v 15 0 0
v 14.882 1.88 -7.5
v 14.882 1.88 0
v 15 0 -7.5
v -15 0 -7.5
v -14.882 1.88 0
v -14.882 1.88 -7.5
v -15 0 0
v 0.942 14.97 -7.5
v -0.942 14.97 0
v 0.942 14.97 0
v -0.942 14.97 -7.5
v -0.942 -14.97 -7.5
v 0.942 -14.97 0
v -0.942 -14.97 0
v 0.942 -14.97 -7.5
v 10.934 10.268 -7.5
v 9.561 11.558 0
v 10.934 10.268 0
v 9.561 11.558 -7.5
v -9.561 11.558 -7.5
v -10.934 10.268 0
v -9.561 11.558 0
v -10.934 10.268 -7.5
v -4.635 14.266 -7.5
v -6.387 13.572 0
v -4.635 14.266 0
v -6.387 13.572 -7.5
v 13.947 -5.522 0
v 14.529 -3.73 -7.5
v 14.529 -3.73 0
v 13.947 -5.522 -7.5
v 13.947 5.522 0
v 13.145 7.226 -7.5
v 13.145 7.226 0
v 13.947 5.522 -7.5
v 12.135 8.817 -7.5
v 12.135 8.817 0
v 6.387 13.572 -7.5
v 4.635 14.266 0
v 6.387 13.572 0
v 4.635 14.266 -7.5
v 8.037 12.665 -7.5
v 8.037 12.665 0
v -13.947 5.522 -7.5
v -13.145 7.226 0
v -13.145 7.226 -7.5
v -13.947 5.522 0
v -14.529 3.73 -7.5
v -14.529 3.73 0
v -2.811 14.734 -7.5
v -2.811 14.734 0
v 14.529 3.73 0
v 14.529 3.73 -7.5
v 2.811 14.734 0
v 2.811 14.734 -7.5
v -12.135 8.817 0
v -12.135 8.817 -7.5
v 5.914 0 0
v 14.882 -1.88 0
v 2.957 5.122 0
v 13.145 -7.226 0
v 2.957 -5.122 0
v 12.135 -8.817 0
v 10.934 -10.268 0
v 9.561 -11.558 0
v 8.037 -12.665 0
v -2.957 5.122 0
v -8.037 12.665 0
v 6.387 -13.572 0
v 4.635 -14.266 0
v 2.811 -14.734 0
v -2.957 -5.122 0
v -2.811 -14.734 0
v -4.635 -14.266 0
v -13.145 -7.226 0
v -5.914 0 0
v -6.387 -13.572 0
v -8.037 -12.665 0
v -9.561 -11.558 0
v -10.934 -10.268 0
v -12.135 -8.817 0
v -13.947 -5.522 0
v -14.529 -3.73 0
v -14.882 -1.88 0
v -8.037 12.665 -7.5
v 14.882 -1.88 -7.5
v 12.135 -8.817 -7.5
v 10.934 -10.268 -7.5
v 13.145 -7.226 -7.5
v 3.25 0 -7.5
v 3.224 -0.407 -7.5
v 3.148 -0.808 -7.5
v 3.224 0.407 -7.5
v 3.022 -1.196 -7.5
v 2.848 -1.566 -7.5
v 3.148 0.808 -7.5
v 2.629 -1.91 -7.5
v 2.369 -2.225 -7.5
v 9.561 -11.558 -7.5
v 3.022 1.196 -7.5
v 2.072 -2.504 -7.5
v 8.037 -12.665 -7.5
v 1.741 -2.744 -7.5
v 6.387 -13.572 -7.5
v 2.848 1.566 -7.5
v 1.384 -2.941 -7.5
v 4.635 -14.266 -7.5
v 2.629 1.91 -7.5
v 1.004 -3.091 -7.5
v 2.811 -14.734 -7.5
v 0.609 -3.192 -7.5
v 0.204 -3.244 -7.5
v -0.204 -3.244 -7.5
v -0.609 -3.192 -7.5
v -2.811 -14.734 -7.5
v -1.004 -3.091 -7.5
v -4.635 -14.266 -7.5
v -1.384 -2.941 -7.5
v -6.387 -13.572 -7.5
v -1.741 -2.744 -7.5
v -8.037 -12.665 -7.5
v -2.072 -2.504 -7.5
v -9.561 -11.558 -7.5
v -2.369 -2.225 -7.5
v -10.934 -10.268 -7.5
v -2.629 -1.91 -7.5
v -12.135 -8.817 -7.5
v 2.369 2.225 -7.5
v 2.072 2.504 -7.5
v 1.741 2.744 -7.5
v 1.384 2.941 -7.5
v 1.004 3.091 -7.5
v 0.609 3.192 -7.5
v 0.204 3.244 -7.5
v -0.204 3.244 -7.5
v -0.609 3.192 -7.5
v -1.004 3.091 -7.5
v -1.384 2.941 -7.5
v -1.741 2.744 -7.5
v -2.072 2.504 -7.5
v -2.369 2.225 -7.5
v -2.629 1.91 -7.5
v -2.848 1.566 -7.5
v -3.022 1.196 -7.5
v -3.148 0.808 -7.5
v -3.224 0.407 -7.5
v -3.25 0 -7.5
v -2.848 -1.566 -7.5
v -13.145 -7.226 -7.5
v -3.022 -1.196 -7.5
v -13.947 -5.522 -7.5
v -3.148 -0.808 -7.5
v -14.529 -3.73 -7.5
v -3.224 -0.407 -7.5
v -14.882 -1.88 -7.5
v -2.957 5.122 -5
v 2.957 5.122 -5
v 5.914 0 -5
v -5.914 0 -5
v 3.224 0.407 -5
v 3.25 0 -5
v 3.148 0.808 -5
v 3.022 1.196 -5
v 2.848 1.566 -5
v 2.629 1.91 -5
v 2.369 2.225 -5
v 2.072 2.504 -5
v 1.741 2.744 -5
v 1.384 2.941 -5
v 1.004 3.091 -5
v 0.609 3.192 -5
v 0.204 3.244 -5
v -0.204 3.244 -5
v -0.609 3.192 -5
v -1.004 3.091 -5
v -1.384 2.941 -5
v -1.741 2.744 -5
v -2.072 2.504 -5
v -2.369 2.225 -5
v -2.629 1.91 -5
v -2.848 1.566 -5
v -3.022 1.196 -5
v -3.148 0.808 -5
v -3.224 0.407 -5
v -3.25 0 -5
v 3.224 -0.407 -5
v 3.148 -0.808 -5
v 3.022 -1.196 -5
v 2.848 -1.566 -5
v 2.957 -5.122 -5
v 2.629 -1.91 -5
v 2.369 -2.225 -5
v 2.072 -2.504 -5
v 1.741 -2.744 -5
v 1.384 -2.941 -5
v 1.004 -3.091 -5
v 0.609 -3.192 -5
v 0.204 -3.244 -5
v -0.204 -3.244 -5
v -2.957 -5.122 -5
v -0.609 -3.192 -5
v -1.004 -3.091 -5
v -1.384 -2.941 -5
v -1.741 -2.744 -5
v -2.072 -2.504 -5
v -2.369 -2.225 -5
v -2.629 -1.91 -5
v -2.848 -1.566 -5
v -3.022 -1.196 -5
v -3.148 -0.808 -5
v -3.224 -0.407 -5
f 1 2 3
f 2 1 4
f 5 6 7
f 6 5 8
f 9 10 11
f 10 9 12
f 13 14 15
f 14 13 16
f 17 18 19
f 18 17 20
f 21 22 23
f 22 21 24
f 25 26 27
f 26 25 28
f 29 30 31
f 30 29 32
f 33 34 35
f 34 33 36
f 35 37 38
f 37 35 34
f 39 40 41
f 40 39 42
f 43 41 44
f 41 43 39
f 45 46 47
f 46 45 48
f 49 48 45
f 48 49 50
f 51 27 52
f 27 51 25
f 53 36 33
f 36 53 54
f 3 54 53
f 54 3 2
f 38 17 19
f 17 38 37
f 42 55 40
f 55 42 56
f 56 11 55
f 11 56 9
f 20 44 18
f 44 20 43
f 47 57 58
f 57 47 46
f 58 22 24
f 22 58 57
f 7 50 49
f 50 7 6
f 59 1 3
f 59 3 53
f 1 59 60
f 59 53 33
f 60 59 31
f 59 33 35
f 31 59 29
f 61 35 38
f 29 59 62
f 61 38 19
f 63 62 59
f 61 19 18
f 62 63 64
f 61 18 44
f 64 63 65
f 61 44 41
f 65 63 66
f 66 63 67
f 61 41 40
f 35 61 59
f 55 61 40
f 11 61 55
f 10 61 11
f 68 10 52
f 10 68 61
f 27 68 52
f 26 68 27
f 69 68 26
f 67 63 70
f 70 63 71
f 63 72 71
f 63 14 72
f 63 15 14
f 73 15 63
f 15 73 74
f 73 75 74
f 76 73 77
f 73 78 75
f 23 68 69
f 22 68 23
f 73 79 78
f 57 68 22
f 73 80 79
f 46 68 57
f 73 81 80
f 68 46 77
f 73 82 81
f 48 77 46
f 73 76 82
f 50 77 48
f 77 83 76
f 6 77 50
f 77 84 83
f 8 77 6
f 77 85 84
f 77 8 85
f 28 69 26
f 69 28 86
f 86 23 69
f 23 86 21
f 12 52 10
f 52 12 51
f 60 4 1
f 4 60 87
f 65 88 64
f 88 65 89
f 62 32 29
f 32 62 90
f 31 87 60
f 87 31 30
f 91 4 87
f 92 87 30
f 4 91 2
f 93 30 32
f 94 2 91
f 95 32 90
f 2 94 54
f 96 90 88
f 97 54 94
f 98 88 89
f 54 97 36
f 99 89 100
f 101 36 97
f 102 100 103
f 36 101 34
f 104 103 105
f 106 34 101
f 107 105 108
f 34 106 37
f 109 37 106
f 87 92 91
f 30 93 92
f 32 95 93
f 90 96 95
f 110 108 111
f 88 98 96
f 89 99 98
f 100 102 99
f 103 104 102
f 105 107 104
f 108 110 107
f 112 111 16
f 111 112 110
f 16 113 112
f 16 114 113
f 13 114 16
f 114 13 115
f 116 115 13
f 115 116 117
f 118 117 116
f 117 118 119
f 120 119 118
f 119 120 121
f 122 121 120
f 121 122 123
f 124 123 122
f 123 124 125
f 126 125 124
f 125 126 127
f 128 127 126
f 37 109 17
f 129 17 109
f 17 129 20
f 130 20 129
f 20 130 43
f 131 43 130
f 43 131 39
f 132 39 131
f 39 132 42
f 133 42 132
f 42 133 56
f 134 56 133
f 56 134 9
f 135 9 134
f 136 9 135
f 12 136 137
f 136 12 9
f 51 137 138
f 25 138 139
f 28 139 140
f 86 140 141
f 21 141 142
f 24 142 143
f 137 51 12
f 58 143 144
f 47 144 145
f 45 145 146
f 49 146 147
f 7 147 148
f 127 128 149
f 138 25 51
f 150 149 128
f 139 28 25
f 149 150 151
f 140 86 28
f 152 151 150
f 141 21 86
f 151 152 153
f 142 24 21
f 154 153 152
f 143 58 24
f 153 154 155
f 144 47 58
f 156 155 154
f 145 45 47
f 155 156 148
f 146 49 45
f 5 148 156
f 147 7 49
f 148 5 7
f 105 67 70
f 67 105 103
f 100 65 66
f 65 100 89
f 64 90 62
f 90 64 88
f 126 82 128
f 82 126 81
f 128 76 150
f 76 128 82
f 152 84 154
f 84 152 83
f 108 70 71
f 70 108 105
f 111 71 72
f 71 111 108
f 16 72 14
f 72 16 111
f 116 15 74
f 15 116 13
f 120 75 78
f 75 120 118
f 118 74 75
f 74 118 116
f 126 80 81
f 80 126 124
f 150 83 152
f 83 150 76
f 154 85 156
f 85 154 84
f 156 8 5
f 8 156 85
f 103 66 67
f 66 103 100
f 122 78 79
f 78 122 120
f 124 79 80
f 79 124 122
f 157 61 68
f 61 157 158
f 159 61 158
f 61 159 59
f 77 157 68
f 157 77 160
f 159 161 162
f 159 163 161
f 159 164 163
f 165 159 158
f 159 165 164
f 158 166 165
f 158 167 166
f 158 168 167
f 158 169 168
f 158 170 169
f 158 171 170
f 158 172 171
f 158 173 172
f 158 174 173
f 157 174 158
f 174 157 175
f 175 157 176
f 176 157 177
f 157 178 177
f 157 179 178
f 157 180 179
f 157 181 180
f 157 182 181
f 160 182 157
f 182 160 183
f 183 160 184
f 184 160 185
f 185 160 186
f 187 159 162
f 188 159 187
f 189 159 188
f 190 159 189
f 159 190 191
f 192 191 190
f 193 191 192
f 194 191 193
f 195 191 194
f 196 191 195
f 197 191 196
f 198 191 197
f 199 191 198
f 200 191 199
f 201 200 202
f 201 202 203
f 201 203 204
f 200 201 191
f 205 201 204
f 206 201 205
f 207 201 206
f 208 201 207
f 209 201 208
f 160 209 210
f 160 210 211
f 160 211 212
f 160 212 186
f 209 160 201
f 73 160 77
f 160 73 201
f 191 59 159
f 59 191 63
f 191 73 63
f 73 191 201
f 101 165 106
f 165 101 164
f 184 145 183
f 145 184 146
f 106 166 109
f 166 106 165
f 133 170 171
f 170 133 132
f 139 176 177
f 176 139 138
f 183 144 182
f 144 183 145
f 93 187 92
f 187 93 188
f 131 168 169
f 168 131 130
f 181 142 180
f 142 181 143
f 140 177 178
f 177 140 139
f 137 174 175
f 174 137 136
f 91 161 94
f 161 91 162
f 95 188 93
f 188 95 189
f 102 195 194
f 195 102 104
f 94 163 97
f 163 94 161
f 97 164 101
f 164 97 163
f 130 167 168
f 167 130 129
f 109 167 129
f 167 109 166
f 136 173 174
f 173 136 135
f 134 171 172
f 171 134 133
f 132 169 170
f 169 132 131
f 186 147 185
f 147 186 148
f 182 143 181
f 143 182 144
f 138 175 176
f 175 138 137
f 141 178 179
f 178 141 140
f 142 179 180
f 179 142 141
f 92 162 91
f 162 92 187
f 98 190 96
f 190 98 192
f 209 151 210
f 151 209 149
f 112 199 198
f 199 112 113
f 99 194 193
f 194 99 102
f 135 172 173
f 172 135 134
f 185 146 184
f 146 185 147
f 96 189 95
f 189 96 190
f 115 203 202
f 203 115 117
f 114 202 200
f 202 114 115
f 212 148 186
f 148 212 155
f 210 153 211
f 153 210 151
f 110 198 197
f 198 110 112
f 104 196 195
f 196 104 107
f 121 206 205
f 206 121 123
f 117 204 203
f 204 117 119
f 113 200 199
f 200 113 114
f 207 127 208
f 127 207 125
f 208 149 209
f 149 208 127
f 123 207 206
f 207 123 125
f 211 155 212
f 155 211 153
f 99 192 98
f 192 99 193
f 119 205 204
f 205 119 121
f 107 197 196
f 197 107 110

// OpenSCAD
$fn = 50;


difference() {
	union() {
		translate(v = [0, 0, -7.5000000000]) {
			cylinder(h = 7.5000000000, r = 15.0000000000);
		}
		translate(v = [0, 0, -9.0000000000]) {
			cylinder(h = 9, r = 2.8750000000);
		}
	}
	union() {
		translate(v = [0, 0, 0]) {
			rotate(a = [0, 0, 0]) {
				difference() {
					union() {
						translate(v = [0, 0, -5]) {
							linear_extrude(height = 5) {
								polygon(points = [[5.9142500000, 0.0000000000], [2.9571250000, 5.1218907443], [-2.9571250000, 5.1218907443], [-5.9142500000, 0.0000000000], [-2.9571250000, -5.1218907443], [2.9571250000, -5.1218907443]]);
							}
						}
					}
					union();
				}
			}
		}
		#translate(v = [0, 0, -100.0000000000]) {
			cylinder(h = 200, r = 3.2500000000);
		}
	}
}
